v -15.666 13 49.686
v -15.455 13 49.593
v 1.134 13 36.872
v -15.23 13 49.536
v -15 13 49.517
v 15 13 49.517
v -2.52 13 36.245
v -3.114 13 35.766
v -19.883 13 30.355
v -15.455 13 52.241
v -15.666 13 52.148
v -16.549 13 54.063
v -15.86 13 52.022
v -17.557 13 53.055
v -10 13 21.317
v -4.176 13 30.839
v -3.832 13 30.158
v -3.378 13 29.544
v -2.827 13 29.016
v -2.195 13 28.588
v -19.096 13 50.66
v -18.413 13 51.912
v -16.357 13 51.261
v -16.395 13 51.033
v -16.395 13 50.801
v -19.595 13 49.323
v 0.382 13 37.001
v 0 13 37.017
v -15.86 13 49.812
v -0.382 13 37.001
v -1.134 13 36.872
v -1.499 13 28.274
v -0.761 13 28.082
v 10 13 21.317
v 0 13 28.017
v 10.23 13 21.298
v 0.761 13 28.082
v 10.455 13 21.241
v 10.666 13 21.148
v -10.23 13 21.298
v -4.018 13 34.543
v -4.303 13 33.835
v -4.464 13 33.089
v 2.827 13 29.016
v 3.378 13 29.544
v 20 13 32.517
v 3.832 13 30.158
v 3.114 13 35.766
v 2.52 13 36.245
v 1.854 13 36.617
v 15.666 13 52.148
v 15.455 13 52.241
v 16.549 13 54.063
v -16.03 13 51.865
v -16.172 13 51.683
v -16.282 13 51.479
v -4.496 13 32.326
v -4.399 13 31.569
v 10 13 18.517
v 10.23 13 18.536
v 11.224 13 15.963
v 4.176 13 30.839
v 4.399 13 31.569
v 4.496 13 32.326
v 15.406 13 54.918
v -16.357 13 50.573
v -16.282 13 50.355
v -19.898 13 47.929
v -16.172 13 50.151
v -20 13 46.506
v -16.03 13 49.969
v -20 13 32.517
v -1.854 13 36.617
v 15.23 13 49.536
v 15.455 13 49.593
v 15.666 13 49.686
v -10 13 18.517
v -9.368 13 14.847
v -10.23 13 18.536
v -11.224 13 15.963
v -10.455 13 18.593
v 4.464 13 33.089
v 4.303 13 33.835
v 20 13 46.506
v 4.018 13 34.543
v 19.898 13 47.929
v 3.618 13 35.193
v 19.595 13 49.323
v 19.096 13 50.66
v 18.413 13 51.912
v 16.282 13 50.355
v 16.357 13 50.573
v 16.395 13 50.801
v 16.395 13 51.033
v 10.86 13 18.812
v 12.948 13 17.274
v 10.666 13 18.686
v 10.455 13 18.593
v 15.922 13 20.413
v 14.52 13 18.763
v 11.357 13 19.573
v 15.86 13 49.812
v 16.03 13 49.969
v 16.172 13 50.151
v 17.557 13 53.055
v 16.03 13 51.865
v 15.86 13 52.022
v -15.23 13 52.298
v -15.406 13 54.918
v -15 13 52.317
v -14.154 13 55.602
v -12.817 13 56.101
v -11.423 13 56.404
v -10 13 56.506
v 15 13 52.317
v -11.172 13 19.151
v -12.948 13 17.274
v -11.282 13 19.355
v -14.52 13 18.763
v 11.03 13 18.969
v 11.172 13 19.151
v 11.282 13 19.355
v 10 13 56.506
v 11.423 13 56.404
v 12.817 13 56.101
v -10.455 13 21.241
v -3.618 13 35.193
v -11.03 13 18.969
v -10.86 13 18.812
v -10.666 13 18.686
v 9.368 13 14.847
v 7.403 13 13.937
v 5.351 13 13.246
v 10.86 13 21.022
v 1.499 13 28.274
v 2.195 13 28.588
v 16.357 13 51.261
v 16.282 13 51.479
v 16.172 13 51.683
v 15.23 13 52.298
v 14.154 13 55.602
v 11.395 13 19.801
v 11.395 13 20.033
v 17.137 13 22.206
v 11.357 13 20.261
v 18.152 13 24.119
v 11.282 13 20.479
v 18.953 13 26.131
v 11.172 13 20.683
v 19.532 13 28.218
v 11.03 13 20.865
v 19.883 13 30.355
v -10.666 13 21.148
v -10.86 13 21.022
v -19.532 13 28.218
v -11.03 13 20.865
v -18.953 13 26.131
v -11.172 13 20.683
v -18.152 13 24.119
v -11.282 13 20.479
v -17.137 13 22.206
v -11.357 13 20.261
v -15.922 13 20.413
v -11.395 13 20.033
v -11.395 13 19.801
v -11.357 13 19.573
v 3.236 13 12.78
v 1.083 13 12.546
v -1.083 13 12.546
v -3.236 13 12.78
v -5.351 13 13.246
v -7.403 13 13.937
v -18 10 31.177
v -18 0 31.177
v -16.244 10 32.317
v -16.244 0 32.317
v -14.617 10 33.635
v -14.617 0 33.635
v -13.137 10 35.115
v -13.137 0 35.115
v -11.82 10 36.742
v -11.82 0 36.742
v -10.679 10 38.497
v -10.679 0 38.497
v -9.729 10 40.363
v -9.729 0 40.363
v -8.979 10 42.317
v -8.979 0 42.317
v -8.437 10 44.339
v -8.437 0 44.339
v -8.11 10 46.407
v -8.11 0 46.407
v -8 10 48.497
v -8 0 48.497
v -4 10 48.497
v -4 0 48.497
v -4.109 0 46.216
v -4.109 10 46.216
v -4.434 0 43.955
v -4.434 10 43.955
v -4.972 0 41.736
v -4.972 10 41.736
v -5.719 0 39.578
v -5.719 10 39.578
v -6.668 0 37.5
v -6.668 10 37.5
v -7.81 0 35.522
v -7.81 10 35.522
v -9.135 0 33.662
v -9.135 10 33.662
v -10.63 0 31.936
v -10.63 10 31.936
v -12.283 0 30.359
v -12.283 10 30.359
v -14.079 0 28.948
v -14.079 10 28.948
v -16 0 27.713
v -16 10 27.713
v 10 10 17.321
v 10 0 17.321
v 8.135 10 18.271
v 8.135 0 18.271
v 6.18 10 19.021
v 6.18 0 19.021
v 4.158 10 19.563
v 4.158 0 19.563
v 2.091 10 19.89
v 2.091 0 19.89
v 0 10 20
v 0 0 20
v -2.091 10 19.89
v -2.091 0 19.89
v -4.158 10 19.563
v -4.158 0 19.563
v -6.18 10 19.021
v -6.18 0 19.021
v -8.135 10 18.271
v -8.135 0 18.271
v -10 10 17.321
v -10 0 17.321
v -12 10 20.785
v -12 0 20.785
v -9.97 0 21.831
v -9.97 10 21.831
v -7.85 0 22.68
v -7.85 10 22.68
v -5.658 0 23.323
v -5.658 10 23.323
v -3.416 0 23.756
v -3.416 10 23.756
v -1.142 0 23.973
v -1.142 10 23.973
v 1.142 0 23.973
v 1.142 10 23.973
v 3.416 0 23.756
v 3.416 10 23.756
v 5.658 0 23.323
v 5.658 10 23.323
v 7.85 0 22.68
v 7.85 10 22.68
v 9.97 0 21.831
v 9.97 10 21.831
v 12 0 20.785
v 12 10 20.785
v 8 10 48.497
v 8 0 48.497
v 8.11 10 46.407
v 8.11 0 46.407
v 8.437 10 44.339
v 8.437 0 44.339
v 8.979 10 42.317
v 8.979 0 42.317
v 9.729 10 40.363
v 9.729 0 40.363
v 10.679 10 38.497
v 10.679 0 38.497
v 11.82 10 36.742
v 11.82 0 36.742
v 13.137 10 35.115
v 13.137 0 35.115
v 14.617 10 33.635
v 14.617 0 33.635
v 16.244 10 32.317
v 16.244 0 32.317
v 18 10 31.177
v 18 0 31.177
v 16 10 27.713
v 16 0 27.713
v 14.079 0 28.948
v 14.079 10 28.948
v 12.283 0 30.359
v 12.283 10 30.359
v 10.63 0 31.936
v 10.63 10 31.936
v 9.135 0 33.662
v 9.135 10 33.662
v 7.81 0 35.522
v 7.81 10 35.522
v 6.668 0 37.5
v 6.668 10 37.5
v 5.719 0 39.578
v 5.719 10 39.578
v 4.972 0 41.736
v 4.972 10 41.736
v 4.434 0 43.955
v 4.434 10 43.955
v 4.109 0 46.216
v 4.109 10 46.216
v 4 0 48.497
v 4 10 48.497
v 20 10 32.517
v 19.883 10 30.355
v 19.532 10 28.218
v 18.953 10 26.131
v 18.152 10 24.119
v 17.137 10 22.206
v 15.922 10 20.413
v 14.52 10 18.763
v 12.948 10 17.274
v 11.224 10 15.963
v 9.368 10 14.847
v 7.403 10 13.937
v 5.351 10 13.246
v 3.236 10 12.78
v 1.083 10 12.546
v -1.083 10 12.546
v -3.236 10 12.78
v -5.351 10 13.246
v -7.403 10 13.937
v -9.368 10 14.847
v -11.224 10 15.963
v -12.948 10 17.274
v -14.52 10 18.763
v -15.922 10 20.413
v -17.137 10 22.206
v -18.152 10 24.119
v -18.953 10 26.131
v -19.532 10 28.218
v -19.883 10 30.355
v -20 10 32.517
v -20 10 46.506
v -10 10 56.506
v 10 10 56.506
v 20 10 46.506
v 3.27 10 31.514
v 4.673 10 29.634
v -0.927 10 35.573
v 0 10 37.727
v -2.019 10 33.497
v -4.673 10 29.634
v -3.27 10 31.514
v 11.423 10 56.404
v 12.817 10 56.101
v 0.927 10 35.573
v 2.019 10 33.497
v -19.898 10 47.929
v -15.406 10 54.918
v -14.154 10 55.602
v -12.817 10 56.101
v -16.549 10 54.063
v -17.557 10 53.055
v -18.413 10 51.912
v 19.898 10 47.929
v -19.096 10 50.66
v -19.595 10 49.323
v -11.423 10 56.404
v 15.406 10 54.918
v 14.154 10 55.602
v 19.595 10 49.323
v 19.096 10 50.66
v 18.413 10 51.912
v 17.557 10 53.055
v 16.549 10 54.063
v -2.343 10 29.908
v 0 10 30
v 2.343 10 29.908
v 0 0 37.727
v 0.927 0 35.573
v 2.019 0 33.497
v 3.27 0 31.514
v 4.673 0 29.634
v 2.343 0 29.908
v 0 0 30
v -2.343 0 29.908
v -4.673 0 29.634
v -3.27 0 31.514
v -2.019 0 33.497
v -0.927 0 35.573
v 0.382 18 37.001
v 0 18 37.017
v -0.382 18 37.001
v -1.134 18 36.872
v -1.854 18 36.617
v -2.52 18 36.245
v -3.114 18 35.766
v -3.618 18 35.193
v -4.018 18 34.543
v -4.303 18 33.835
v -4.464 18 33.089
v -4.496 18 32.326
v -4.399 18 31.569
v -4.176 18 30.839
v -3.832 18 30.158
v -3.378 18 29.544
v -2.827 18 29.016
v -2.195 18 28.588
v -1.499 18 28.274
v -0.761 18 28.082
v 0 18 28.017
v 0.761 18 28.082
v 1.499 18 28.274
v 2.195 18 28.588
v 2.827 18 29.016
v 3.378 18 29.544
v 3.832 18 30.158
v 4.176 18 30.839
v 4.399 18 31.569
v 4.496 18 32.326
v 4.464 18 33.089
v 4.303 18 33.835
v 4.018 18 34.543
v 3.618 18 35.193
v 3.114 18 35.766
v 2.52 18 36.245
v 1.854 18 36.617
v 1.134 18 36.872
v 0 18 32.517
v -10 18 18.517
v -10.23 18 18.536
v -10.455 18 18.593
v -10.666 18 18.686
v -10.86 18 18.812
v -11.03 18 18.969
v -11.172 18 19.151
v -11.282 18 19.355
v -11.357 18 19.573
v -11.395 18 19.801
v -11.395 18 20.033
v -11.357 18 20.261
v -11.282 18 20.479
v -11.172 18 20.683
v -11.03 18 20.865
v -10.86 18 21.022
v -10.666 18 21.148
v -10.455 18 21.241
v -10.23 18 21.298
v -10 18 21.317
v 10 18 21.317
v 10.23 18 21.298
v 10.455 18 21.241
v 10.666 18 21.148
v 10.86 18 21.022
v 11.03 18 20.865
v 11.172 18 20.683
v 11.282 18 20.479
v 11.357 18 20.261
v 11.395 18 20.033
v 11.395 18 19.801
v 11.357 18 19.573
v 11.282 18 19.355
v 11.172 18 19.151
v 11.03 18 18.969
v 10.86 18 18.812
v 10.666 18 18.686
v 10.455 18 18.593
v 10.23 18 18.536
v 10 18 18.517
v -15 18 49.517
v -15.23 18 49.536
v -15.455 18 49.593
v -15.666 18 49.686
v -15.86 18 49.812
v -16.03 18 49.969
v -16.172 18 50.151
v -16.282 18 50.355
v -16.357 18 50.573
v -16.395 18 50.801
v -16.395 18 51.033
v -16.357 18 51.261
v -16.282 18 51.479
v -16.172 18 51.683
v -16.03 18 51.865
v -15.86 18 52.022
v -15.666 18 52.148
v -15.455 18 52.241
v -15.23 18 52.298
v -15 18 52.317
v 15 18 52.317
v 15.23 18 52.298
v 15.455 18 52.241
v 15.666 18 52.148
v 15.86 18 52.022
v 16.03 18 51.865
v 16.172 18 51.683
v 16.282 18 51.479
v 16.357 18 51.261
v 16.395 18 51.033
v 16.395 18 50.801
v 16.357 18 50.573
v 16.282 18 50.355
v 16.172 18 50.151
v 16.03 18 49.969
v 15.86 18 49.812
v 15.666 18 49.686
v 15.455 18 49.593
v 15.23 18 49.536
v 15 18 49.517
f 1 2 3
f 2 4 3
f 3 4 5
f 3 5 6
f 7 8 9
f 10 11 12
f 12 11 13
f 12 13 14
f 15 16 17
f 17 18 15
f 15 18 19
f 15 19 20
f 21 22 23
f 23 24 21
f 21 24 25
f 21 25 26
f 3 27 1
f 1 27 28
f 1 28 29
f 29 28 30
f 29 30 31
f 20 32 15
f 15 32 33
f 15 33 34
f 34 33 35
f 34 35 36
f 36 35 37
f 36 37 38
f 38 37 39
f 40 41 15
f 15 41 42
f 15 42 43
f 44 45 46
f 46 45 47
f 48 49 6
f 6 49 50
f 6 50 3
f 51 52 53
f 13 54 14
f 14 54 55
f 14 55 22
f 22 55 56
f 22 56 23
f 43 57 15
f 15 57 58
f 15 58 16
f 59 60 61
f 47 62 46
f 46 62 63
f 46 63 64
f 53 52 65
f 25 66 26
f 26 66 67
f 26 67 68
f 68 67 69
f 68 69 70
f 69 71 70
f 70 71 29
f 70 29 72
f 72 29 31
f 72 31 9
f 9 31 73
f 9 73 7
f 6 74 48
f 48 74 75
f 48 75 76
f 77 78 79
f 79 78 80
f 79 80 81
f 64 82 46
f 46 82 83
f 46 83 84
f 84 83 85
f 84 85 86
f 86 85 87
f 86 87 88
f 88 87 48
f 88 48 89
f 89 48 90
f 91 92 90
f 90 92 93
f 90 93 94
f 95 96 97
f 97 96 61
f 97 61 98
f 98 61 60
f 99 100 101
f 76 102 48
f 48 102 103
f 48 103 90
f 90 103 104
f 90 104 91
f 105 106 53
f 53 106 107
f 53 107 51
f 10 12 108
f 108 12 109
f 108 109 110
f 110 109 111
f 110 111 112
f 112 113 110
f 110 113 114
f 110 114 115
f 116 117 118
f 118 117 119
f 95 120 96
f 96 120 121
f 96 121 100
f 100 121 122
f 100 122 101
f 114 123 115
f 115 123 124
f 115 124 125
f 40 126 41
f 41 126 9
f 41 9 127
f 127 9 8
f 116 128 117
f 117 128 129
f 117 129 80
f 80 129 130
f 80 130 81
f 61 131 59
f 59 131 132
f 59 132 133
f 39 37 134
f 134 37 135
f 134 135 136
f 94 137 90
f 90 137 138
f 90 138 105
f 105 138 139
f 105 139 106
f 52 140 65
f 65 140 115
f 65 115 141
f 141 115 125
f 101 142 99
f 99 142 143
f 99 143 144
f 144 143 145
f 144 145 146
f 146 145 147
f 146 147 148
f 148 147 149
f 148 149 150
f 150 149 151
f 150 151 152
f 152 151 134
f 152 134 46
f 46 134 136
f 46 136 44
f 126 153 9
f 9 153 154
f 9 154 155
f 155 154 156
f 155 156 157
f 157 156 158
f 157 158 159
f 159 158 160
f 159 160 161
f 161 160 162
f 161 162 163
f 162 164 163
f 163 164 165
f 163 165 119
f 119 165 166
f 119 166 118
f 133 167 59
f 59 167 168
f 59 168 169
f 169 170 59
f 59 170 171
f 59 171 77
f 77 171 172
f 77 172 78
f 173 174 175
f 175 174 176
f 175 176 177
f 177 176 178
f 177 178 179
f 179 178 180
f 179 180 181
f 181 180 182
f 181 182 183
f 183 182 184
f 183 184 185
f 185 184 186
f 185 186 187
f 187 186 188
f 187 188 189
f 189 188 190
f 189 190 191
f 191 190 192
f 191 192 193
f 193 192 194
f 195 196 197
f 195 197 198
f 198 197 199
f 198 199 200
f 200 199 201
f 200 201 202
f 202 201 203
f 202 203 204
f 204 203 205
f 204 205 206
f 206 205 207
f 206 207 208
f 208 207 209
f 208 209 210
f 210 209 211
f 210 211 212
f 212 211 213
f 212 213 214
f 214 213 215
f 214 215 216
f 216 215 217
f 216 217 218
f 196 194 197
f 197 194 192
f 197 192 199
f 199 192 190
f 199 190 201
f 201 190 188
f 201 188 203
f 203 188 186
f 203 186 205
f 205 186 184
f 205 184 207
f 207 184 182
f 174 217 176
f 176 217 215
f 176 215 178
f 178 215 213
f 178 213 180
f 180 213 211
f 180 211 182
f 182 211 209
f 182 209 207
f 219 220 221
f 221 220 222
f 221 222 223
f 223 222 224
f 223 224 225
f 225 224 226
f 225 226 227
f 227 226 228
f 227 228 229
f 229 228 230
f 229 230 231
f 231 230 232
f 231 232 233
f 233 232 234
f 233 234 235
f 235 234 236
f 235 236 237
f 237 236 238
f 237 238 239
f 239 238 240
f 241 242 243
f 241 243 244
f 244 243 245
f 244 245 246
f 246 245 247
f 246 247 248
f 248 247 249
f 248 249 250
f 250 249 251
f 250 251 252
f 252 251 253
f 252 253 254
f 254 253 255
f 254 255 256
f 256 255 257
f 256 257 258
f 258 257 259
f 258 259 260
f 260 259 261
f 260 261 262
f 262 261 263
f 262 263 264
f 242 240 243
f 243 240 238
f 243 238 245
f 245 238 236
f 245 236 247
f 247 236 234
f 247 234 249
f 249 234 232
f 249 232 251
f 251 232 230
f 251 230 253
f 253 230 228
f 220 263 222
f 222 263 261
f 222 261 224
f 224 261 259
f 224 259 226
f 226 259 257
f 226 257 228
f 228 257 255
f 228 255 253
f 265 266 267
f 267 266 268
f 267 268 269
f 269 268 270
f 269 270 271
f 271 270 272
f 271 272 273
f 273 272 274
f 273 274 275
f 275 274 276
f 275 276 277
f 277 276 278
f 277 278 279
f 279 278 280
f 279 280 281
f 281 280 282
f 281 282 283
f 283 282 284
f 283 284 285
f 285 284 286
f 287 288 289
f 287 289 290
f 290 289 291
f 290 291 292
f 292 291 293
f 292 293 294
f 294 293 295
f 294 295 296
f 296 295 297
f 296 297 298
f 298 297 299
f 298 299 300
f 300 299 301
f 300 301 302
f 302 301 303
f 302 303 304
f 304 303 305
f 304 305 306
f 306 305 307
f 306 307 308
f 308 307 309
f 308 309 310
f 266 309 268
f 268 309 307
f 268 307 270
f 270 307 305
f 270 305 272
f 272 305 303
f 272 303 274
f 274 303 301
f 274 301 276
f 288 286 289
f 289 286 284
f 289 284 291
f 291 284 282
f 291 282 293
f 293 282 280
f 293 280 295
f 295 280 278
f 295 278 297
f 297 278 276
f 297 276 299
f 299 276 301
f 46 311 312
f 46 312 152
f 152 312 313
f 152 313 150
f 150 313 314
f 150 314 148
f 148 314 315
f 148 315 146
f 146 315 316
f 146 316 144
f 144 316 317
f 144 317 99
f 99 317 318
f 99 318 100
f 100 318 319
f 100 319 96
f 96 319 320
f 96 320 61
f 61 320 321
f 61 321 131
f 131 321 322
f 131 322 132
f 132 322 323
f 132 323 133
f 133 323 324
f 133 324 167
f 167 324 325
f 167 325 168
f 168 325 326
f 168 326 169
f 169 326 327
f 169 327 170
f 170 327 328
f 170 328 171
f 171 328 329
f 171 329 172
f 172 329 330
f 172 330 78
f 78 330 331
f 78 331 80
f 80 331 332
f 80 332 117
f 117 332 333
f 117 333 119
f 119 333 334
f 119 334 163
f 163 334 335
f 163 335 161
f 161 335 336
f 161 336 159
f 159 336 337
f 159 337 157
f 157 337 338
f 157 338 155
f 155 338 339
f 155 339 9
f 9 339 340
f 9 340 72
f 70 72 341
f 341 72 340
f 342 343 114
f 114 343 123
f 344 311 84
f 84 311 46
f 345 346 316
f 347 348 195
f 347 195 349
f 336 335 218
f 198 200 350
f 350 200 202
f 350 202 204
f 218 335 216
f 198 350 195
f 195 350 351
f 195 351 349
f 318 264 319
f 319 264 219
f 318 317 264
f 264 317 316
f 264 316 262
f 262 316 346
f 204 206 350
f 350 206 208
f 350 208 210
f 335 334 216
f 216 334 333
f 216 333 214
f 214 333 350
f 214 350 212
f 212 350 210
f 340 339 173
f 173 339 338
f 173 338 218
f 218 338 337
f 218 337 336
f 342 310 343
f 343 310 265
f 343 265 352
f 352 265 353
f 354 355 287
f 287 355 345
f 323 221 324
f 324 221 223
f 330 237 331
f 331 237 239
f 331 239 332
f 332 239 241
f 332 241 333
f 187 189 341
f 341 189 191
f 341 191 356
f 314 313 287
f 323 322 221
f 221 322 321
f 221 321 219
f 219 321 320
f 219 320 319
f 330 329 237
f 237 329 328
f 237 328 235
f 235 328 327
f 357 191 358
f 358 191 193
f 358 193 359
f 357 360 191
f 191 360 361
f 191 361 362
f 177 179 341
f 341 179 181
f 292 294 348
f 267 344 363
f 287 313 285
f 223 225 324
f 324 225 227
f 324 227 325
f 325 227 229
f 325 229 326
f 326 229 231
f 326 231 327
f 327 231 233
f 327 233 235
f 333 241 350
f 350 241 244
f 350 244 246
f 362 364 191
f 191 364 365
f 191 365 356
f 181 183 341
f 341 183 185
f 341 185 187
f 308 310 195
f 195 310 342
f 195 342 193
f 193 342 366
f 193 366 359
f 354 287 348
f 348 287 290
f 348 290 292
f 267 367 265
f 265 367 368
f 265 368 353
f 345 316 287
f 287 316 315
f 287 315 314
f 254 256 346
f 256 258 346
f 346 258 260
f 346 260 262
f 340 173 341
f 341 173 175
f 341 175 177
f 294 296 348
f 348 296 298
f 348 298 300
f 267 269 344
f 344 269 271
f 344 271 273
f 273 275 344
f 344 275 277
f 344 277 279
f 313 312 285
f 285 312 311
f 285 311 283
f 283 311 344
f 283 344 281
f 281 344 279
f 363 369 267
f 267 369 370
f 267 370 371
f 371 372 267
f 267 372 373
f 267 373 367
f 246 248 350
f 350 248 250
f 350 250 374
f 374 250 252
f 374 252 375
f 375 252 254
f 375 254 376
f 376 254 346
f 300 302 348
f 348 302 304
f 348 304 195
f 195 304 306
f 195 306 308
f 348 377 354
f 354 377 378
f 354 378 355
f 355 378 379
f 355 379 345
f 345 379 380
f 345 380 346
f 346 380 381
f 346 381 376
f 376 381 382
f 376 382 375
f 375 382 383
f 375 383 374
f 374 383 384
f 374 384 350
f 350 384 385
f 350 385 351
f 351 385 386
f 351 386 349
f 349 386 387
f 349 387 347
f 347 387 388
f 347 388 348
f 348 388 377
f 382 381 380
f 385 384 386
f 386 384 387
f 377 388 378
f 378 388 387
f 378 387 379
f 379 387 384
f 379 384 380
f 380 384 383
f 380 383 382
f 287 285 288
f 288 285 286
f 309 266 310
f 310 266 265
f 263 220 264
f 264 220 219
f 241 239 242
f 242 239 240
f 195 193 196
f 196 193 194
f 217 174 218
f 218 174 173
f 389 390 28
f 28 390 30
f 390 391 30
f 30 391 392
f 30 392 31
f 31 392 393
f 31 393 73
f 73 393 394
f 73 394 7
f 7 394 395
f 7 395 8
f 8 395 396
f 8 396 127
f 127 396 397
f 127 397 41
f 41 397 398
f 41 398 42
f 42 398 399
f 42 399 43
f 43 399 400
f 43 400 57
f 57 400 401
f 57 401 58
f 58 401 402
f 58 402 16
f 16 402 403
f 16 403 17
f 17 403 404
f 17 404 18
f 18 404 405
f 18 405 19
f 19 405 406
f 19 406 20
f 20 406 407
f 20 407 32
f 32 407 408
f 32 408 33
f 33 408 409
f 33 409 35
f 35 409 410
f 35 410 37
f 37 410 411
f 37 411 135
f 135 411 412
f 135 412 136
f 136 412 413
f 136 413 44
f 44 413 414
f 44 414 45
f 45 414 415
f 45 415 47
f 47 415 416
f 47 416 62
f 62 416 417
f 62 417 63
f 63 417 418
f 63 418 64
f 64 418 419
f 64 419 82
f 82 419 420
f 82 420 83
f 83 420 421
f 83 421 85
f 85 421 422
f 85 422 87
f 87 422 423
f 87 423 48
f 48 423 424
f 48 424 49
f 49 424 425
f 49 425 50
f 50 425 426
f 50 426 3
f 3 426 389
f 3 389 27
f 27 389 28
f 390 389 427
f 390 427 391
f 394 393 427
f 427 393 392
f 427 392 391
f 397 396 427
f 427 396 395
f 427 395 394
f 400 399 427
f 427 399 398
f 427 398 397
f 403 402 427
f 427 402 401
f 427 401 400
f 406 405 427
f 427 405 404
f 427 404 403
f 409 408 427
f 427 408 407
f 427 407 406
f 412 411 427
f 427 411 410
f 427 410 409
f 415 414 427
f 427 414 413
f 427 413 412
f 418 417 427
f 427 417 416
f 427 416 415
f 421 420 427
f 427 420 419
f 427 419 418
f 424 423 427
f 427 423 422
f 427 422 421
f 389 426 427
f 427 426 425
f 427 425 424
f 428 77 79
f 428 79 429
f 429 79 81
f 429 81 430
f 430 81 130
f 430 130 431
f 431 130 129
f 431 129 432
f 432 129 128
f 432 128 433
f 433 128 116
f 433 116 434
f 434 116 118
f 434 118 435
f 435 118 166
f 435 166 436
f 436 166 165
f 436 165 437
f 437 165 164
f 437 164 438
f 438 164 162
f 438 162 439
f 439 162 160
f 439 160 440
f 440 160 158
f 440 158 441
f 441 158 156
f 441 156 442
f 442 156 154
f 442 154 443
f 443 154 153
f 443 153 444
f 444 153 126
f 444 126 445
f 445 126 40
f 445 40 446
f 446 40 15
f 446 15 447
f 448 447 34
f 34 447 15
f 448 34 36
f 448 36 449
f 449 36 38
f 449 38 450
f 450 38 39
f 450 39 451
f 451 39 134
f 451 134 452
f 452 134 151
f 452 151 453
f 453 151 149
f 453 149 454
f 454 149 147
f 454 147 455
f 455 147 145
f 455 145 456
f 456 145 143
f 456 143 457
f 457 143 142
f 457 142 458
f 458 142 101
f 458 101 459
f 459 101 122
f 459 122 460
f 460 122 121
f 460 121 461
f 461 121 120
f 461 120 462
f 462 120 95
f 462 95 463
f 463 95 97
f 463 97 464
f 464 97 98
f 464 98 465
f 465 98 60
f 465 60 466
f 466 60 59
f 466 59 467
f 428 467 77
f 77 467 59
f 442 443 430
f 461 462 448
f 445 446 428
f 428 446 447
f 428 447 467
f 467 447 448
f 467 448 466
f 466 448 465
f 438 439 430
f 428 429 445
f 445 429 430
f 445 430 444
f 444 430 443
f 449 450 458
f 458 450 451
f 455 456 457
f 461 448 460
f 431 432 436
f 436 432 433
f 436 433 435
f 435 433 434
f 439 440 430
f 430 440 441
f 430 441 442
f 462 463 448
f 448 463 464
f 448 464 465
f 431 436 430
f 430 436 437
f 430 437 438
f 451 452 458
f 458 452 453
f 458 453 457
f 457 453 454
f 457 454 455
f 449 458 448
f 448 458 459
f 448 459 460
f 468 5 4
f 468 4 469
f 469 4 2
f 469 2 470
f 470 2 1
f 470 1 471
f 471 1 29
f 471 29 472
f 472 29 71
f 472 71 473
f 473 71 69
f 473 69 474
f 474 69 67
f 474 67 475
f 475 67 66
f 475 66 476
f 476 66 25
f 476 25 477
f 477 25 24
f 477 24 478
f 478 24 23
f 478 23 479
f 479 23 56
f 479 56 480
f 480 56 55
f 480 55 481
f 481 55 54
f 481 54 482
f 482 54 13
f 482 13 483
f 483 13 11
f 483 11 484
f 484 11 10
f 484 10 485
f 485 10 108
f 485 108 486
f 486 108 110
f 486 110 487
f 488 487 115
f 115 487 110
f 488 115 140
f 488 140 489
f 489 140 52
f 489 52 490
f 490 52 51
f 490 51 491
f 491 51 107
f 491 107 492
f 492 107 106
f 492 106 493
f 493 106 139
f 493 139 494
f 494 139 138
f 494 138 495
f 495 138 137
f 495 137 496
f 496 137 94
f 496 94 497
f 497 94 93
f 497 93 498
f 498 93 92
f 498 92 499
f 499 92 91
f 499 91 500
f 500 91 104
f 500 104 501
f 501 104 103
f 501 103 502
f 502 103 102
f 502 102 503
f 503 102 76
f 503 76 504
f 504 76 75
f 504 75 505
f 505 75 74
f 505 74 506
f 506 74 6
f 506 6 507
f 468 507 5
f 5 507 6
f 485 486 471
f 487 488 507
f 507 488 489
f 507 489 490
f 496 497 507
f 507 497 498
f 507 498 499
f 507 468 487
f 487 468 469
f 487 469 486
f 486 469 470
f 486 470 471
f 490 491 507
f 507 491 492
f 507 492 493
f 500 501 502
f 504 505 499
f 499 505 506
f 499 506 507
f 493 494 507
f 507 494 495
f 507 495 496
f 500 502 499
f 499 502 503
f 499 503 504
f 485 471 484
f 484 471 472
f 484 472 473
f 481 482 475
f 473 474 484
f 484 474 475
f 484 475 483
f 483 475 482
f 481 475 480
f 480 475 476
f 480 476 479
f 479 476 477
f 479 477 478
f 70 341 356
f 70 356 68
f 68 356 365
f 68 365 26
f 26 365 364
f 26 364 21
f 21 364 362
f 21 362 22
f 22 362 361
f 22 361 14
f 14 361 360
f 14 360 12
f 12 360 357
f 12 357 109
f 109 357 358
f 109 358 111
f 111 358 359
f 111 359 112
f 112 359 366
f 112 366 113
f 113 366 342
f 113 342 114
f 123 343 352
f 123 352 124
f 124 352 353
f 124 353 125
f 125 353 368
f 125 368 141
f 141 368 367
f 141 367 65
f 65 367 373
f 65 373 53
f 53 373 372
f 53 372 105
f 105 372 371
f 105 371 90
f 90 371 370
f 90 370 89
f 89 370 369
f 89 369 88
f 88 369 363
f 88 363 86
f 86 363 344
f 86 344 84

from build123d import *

# Parameters (mm, degrees)
SKETCH1_R             = 24
SKETCH1_R_2           = 20
BOSS_EXTRUDE1_DEPTH   = 10
BOSS_EXTRUDE1_2_DEPTH = 10
BOSS_EXTRUDE1_3_DEPTH = 10
BOSS_EXTRUDE1_4_DEPTH = 10
BOSS_EXTRUDE2_DEPTH   = 3
SKETCH3_W             = 121.220550743
SKETCH3_H             = 101.763820318
CUT_EXTRUDE1_DEPTH    = 10
SKETCH4_R             = 4.5
BOSS_EXTRUDE4_DEPTH   = 5
FILLET1_R             = 10


with BuildPart() as part:
    # Sketch1 → Boss-Extrude1 (new body)
    with BuildSketch(Plane(origin=(0, 0, 0), x_dir=(1, 0, 0), z_dir=(0, 1, 0))):
        with Locations(Location((-28, -48.497422612, 0), (0, 0, 270))):
            Circle(SKETCH1_R)
        with Locations(Location((-28, -48.497422612, 0), (0, 0, 270))):
            Circle(SKETCH1_R_2, mode=Mode.SUBTRACT)
    extrude(amount=BOSS_EXTRUDE1_DEPTH)



with BuildPart() as body_2:
    # Sketch1 → Boss-Extrude1 2 (new body)
    with BuildSketch(Plane(origin=(0, 0, 0), x_dir=(1, 0, 0), z_dir=(0, 1, 0))):
        with Locations(Location((0, 0, 0), (0, 0, 270))):
            Circle(SKETCH1_R)
        with Locations(Location((0, 0, 0), (0, 0, 270))):
            Circle(SKETCH1_R_2, mode=Mode.SUBTRACT)
    extrude(amount=BOSS_EXTRUDE1_2_DEPTH)


with BuildPart() as body_3:
    # Sketch1 → Boss-Extrude1 3 (new body)
    with BuildSketch(Plane(origin=(0, 0, 0), x_dir=(1, 0, 0), z_dir=(0, 1, 0))):
        with Locations(Location((28, -48.497422612, 0), (0, 0, 270))):
            Circle(SKETCH1_R)
        with Locations(Location((28, -48.497422612, 0), (0, 0, 270))):
            Circle(SKETCH1_R_2, mode=Mode.SUBTRACT)
    extrude(amount=BOSS_EXTRUDE1_3_DEPTH)


with BuildPart() as body_4:
    # Sketch1 → Boss-Extrude1 4 (new body)
    with BuildSketch(Plane(origin=(0, 0, 0), x_dir=(1, 0, 0), z_dir=(0, 1, 0))):
        with BuildLine():
            ThreePointArc((4.672620947, -29.633876113), (2.019237886, -33.497422612), (0, -37.727092998))
            ThreePointArc((0, -37.727092998), (-2.019237886, -33.497422612), (-4.672620947, -29.633876113))
            ThreePointArc((-4.672620947, -29.633876113), (0, -30), (4.672620947, -29.633876113))
        make_face()
    extrude(amount=BOSS_EXTRUDE1_4_DEPTH)


with BuildPart() as part_1:
    add(part.part)

    add(body_2.part)  # Boss-Extrude2 merges body 2

    add(body_3.part)  # Boss-Extrude2 merges body 3

    add(body_4.part)  # Boss-Extrude2 merges body 4
    # Sketch2 → Boss-Extrude2 (add)
    with BuildSketch(Plane(origin=(0, 10, 0), x_dir=(1, 0, 0), z_dir=(0, 1, 0))):
        with BuildLine():
            Line((-20, -32.516950024), (-20, -56.505922275))
            Line((-20, -56.505922275), (20, -56.505922275))
            Line((20, -56.505922275), (20, -32.516950024))
            ThreePointArc((20, -32.516950024), (0, -12.516950024), (-20, -32.516950024))
        make_face()
    extrude(amount=BOSS_EXTRUDE2_DEPTH)

    # Sketch3 → Cut-Extrude1 (cut)
    with BuildSketch(Plane.XZ):
        with Locations((1.216045651, 23.416680071)):
            Rectangle(SKETCH3_W, SKETCH3_H)
        Polygon((0, 0), (28, 48.497422612), (-28, 48.497422612), align=None, mode=Mode.SUBTRACT)
    extrude(amount=-CUT_EXTRUDE1_DEPTH, mode=Mode.SUBTRACT)

    # Sketch4 → Boss-Extrude4 (add)
    with BuildSketch(Plane(origin=(0, 13, 0), x_dir=(1, 0, 0), z_dir=(0, 1, 0))):
        with Locations(Location((0, -32.516950024, 0), (0, 0, 270))):
            Circle(SKETCH4_R)
        with BuildLine():
            Line((-10, -18.516950024), (10, -18.516950024))
            ThreePointArc((10, -18.516950024), (11.4, -19.916950024), (10, -21.316950024))
            Line((10, -21.316950024), (-10, -21.316950024))
            ThreePointArc((-10, -21.316950024), (-11.4, -19.916950024), (-10, -18.516950024))
        make_face()
        with BuildLine():
            Line((-15, -49.516950024), (15, -49.516950024))
            ThreePointArc((15, -49.516950024), (16.4, -50.916950024), (15, -52.316950024))
            Line((15, -52.316950024), (-15, -52.316950024))
            ThreePointArc((-15, -52.316950024), (-16.4, -50.916950024), (-15, -49.516950024))
        make_face()
    extrude(amount=BOSS_EXTRUDE4_DEPTH)

    # Fillet1
    fillet1_edges = [part_1.edges().sort_by_distance(p)[0] for p in [
        (-20, 11.5, 56.505922275),
        (20, 11.5, 56.505922275),
    ]]
    fillet(fillet1_edges, radius=FILLET1_R)


solid = part_1.part
